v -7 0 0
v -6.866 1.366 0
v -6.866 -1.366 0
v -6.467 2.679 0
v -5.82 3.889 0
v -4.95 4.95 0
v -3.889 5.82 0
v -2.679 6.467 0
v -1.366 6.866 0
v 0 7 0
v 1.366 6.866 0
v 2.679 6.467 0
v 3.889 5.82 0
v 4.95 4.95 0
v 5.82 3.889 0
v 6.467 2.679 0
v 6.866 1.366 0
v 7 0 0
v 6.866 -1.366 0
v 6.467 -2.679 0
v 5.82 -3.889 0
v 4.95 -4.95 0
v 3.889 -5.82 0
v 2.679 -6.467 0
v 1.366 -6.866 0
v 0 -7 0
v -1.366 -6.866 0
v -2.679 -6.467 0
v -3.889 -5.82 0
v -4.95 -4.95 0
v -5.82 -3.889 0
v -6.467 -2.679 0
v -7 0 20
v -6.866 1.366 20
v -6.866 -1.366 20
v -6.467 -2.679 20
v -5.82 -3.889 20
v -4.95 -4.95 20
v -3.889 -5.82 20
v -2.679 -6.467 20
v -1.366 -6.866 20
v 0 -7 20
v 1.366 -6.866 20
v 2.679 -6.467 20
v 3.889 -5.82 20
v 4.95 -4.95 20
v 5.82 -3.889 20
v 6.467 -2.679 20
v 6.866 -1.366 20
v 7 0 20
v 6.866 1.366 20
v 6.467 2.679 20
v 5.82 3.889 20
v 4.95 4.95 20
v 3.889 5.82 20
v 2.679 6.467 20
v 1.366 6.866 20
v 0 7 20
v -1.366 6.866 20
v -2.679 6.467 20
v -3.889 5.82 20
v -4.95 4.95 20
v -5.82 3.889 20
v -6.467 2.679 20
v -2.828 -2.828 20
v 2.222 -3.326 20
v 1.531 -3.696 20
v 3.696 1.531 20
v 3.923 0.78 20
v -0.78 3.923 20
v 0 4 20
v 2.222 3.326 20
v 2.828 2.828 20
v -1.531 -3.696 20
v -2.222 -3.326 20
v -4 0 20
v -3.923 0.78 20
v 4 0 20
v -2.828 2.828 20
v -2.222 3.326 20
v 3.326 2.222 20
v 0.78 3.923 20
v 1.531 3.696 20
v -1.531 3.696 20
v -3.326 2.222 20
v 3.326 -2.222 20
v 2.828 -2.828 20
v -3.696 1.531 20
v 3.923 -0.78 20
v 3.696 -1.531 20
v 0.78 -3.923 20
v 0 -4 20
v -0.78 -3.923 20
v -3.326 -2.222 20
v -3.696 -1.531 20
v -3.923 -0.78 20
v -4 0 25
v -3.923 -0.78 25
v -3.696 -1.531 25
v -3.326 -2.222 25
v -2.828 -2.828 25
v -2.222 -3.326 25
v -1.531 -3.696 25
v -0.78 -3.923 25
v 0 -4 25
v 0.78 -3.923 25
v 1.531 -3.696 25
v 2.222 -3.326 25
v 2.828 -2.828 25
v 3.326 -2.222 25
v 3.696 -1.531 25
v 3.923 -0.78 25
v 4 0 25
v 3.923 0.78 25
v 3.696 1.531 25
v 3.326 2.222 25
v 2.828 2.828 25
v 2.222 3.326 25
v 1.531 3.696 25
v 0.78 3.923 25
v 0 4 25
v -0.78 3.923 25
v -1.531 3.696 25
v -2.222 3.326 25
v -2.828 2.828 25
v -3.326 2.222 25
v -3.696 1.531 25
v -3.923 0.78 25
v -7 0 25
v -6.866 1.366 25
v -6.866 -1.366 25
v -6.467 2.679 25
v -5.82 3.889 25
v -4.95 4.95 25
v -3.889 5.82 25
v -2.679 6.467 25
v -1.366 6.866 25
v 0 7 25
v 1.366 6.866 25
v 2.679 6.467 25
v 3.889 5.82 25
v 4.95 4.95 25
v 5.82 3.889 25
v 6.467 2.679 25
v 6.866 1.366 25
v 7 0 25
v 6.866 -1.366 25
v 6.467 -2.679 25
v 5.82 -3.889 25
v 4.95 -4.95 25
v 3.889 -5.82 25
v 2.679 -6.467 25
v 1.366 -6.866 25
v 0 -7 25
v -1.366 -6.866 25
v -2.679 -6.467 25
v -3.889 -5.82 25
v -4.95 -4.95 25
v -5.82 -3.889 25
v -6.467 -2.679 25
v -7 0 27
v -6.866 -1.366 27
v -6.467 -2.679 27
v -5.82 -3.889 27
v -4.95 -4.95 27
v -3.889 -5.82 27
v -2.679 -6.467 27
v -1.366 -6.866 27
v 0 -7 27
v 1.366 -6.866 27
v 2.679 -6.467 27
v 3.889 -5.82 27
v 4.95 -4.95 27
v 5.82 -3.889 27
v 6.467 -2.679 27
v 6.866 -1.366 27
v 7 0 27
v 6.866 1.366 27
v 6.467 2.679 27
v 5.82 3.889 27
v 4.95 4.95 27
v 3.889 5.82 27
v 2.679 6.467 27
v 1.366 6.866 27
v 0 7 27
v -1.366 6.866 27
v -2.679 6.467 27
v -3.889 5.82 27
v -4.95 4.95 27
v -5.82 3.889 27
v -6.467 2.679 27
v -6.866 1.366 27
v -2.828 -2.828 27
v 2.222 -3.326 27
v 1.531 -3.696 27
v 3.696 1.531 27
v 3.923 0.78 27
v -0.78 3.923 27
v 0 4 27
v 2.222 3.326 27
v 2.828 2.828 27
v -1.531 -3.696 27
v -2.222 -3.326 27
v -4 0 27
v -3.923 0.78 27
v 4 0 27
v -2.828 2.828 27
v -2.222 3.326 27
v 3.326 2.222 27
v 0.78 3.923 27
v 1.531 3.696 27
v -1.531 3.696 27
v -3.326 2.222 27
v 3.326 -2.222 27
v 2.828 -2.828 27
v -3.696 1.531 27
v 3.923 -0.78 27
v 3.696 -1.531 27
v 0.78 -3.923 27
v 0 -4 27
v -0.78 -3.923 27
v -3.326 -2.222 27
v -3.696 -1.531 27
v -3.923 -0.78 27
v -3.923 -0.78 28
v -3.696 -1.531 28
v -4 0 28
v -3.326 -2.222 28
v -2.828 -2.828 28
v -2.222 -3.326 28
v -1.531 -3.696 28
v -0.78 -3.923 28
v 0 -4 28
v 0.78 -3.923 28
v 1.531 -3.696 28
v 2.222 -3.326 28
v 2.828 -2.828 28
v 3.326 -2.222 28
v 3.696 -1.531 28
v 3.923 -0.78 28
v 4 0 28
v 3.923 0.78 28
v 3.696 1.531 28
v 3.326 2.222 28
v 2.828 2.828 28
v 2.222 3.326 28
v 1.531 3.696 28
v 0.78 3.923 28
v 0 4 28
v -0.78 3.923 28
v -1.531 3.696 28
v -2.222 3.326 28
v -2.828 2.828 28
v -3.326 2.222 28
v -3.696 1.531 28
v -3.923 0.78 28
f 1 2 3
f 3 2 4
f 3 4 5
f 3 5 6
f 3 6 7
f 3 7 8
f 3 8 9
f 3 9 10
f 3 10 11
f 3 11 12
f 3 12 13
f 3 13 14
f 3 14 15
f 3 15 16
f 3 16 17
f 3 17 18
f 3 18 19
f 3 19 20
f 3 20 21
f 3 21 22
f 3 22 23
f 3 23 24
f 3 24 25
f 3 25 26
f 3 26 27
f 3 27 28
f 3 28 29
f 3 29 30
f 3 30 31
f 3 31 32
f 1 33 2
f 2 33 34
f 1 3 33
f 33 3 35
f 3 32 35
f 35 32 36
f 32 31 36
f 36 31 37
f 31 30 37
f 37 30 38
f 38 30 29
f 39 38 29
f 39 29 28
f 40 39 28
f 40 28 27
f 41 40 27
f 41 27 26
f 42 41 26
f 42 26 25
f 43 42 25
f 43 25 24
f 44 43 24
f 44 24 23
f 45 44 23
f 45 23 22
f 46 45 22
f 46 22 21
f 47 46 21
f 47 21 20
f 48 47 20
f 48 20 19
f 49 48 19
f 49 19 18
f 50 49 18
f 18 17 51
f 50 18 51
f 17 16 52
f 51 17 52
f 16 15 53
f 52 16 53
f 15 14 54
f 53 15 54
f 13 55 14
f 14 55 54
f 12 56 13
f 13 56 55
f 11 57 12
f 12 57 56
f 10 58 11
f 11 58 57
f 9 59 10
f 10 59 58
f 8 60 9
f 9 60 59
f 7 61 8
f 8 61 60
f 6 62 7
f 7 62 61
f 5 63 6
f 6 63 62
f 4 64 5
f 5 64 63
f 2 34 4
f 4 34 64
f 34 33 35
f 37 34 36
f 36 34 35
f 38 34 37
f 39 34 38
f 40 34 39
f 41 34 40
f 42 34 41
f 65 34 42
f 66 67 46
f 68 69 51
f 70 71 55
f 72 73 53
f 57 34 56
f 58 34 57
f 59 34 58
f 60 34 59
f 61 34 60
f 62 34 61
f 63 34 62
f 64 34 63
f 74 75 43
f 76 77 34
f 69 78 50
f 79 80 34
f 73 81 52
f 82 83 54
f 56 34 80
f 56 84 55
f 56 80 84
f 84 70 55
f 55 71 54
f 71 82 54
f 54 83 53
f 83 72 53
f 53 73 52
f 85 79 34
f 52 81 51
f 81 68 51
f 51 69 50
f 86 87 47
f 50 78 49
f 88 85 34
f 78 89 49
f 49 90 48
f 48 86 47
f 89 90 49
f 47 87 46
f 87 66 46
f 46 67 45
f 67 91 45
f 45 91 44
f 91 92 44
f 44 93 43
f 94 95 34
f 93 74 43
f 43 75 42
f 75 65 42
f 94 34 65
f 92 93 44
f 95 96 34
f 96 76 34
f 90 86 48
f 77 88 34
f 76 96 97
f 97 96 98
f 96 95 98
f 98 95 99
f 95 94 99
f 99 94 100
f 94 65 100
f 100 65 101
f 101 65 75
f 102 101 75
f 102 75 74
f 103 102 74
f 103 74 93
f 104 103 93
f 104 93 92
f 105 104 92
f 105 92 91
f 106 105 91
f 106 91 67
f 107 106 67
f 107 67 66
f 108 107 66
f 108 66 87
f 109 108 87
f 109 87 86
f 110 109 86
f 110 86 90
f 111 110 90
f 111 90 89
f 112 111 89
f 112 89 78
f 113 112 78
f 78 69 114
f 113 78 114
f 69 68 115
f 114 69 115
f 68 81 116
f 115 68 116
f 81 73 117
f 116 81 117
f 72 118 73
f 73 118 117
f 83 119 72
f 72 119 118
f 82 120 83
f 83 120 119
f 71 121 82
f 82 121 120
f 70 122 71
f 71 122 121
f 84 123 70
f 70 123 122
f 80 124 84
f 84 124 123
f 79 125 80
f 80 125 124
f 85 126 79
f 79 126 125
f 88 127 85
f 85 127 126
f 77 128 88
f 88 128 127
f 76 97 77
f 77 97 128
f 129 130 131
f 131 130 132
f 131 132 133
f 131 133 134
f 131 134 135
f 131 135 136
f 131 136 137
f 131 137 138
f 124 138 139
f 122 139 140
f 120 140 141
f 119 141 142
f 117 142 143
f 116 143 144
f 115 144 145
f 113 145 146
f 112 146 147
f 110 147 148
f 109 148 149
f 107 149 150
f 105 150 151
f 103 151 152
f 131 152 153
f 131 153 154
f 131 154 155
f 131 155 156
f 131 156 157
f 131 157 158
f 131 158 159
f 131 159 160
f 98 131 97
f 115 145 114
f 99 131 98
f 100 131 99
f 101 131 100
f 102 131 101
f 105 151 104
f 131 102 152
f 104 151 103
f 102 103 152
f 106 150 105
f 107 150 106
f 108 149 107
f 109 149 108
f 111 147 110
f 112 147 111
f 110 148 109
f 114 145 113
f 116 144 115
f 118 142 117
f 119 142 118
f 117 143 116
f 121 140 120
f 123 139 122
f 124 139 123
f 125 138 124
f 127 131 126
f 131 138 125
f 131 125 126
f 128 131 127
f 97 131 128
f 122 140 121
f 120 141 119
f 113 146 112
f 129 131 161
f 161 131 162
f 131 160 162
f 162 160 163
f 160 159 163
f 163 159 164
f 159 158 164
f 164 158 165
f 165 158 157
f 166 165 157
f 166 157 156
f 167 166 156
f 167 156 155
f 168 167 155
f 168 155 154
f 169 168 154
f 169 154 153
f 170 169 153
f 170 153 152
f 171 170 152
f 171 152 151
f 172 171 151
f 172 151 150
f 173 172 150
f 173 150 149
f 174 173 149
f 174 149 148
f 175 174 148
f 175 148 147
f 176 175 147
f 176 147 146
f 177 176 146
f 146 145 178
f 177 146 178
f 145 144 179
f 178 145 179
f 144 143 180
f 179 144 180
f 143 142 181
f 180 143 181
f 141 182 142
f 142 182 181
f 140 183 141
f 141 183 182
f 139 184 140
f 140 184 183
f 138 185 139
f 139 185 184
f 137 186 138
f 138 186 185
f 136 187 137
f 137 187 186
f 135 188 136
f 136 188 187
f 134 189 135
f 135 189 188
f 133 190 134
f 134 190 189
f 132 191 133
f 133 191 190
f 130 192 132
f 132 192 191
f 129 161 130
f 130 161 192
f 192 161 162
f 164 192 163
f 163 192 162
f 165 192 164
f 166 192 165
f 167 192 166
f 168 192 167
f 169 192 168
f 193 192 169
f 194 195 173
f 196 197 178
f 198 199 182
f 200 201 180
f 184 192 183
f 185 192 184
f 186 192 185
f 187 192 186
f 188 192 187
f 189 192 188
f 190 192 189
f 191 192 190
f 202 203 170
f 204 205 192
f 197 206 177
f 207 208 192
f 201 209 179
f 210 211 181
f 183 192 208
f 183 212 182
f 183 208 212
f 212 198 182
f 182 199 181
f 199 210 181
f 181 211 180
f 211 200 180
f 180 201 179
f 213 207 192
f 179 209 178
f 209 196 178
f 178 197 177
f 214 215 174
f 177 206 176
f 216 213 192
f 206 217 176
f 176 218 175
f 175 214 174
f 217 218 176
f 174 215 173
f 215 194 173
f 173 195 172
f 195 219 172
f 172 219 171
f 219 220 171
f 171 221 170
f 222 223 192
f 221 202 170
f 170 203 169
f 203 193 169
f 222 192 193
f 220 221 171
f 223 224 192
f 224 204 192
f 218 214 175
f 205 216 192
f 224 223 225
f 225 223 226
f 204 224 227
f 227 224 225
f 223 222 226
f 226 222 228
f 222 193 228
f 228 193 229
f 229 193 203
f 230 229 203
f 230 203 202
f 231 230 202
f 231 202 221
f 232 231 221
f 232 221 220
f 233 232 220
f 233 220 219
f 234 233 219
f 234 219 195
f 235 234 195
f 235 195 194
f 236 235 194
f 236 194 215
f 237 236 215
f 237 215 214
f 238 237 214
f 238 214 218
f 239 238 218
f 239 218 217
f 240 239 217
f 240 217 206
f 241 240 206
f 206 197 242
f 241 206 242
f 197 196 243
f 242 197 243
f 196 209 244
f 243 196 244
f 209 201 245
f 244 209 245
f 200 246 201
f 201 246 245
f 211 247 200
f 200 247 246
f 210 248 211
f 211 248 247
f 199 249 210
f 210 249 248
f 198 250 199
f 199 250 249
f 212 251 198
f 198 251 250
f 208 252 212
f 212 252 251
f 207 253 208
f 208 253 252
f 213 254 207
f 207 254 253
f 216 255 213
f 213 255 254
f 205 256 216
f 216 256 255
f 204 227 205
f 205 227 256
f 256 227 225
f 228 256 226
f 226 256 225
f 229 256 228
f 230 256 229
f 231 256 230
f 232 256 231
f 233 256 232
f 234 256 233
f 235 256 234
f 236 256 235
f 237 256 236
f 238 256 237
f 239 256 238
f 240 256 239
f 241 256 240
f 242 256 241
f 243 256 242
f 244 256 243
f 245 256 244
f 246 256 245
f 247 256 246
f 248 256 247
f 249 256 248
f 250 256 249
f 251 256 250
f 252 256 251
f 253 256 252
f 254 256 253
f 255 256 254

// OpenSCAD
cylinder( r=7, h=20, $fn=32 );

translate( [0,0,20] )
cylinder( r=4, h=8, $fn=32 );

translate( [0,0,25] )
cylinder( r=7, h=2, $fn=32 );
